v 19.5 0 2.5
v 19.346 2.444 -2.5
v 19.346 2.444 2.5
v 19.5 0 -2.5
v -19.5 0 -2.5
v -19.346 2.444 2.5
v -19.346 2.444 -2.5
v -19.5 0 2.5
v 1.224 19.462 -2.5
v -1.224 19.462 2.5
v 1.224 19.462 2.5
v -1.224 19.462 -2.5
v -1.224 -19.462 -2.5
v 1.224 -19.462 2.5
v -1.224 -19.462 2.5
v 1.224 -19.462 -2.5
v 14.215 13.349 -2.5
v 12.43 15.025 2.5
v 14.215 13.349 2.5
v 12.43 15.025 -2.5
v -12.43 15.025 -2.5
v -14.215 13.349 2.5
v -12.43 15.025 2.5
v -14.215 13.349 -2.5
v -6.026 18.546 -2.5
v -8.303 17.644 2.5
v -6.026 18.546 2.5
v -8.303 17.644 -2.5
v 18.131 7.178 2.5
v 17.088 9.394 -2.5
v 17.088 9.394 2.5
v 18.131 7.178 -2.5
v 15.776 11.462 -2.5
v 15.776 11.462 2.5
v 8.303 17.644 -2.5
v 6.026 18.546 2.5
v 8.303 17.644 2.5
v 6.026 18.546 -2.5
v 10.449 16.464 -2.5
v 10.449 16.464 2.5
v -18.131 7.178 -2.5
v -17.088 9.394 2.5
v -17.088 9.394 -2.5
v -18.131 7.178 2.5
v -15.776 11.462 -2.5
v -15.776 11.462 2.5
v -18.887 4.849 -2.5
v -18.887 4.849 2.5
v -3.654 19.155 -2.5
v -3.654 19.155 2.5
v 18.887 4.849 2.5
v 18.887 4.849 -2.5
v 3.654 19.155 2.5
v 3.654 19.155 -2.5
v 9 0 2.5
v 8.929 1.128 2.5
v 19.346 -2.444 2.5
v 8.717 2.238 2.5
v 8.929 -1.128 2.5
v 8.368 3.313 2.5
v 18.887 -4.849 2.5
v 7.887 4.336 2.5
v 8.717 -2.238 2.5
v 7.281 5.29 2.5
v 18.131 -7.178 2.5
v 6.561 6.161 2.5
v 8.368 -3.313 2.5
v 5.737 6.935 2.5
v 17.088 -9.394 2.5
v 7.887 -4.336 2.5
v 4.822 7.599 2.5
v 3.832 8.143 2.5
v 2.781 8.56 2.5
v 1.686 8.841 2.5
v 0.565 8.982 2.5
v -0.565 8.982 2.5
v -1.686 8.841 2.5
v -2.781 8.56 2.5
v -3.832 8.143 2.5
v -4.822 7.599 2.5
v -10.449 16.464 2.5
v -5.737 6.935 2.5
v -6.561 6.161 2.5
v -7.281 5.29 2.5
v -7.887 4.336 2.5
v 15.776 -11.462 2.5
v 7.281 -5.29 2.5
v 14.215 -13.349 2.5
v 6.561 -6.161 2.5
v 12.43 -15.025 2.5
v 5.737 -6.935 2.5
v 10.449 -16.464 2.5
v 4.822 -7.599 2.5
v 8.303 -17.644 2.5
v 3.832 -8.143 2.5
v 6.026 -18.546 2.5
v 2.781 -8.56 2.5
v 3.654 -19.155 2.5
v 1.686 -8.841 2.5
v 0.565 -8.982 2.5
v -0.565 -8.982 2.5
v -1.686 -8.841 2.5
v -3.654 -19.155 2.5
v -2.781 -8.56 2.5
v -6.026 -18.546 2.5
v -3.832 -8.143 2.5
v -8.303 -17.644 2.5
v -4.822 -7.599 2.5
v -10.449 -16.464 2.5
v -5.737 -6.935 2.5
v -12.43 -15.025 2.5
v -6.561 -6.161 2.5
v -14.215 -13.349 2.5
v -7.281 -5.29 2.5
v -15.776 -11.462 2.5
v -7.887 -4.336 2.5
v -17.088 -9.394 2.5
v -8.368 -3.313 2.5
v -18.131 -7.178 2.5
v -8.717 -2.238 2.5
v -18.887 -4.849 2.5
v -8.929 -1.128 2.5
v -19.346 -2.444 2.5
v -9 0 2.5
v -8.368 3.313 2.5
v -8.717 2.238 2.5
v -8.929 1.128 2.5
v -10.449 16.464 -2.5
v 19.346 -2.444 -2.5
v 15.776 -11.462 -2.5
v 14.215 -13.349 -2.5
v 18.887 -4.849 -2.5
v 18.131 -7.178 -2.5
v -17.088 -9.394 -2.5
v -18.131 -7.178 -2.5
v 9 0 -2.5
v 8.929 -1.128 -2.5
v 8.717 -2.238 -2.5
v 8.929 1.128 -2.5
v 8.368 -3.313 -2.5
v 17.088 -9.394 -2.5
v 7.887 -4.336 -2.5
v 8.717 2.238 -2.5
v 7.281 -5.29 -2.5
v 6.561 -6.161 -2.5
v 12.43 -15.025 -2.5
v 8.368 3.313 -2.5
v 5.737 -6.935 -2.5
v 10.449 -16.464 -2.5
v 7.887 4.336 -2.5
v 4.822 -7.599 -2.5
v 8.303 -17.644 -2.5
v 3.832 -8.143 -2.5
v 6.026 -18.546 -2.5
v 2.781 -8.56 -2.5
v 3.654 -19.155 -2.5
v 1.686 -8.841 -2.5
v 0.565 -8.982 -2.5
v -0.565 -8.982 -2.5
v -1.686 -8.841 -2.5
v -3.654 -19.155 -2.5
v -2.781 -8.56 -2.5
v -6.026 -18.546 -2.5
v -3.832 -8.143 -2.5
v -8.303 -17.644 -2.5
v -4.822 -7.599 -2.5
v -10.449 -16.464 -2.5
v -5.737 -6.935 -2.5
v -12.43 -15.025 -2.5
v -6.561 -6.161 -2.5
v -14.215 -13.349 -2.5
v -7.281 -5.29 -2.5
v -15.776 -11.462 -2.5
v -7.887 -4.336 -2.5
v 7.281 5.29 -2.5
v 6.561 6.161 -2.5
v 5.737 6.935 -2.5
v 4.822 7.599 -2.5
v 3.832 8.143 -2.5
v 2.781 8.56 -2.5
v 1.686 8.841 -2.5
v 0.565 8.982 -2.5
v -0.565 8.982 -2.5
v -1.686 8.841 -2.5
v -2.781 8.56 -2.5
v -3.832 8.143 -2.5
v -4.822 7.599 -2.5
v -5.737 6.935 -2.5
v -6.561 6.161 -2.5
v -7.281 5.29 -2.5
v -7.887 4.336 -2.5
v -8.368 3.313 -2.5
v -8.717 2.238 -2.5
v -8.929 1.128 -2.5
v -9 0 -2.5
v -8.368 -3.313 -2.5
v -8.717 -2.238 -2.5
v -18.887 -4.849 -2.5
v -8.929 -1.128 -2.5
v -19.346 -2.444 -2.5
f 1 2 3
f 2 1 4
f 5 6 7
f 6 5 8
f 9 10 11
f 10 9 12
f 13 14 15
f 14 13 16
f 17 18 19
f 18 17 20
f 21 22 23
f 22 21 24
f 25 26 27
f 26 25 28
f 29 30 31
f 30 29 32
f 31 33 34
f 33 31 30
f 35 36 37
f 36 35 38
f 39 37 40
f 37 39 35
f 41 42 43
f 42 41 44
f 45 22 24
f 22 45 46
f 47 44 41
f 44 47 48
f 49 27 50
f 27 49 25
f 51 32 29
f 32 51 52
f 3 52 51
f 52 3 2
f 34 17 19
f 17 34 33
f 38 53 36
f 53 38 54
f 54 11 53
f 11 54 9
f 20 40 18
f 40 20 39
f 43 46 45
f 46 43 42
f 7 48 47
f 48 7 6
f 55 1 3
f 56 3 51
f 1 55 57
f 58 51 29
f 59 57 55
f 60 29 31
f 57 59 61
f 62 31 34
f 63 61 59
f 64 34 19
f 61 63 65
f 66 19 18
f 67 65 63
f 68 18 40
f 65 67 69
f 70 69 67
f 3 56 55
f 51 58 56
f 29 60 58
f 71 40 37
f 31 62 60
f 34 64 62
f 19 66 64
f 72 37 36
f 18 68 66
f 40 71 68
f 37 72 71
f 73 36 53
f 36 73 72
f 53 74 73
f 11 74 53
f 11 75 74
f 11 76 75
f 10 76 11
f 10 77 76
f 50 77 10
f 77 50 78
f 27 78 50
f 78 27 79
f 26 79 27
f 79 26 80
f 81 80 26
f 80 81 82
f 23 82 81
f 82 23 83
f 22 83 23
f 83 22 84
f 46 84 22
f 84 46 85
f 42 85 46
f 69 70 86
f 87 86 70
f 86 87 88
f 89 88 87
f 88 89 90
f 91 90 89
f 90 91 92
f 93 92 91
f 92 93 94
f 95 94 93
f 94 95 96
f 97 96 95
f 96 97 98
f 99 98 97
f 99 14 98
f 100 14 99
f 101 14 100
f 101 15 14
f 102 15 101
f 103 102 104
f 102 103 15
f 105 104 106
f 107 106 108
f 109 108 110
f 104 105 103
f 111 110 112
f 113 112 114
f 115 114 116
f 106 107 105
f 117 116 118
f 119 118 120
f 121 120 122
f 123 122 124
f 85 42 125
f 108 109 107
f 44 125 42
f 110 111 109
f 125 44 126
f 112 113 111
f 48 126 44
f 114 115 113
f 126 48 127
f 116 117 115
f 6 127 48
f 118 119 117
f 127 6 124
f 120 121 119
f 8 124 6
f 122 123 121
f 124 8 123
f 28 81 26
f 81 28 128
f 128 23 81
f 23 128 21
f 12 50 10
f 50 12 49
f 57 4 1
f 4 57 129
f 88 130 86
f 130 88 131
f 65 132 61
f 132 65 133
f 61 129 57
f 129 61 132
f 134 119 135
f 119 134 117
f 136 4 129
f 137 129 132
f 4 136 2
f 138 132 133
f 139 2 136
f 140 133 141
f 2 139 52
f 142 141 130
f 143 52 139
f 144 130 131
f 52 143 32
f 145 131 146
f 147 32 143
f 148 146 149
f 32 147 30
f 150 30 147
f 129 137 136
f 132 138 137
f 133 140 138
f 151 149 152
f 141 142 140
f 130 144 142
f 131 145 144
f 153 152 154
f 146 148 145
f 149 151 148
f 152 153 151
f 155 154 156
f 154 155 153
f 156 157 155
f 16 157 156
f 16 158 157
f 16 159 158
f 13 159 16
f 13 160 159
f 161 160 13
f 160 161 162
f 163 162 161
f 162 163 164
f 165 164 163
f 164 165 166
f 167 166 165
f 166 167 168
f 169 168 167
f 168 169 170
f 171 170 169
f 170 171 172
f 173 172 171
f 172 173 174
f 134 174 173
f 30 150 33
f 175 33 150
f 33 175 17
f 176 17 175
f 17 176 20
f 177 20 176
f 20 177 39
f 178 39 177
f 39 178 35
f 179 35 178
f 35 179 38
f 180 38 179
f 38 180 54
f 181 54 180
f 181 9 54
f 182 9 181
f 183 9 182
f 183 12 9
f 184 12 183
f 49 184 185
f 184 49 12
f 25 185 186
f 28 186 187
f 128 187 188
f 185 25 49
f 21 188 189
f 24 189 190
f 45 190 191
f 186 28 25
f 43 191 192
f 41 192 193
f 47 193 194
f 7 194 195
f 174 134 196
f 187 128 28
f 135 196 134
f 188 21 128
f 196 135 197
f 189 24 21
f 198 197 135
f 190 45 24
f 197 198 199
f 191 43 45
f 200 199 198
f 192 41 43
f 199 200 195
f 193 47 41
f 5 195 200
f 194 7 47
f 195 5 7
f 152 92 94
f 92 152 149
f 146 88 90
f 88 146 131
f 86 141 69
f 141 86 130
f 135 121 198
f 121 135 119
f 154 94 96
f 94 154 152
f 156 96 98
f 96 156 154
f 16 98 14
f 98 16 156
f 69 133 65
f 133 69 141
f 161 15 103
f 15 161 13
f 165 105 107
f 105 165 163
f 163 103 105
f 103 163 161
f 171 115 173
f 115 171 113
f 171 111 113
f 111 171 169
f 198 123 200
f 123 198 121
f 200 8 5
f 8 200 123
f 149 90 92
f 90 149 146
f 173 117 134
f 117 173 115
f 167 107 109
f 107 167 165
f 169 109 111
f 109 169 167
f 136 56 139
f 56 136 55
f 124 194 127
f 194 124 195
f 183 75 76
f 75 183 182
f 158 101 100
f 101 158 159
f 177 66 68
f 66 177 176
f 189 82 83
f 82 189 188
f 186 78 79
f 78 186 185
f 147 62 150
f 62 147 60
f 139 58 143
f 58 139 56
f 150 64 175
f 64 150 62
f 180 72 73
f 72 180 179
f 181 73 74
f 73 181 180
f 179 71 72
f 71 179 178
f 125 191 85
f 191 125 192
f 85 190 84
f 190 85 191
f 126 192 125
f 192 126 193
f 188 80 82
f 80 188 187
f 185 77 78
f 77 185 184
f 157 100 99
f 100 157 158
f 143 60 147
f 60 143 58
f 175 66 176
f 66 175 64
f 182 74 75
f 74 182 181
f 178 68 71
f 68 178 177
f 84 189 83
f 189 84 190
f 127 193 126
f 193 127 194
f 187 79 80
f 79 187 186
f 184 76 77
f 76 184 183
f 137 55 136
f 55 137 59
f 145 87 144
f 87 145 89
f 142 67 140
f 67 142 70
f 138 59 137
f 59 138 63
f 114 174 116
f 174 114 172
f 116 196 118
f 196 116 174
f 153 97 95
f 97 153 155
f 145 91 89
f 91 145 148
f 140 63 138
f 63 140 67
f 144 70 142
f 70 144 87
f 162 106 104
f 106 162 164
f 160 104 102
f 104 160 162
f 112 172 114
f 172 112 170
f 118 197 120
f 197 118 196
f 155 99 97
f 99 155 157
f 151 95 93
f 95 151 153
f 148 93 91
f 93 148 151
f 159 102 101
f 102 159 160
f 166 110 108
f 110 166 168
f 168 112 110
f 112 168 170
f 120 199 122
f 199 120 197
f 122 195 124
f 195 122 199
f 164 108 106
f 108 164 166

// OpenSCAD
$fn = 50;


difference() {
	union() {
		translate(v = [0, 0, -2.5000000000]) {
			cylinder(h = 5, r = 19.5000000000);
		}
	}
	union() {
		translate(v = [0, 0, -100.0000000000]) {
			cylinder(h = 200, r = 9);
		}
	}
}
